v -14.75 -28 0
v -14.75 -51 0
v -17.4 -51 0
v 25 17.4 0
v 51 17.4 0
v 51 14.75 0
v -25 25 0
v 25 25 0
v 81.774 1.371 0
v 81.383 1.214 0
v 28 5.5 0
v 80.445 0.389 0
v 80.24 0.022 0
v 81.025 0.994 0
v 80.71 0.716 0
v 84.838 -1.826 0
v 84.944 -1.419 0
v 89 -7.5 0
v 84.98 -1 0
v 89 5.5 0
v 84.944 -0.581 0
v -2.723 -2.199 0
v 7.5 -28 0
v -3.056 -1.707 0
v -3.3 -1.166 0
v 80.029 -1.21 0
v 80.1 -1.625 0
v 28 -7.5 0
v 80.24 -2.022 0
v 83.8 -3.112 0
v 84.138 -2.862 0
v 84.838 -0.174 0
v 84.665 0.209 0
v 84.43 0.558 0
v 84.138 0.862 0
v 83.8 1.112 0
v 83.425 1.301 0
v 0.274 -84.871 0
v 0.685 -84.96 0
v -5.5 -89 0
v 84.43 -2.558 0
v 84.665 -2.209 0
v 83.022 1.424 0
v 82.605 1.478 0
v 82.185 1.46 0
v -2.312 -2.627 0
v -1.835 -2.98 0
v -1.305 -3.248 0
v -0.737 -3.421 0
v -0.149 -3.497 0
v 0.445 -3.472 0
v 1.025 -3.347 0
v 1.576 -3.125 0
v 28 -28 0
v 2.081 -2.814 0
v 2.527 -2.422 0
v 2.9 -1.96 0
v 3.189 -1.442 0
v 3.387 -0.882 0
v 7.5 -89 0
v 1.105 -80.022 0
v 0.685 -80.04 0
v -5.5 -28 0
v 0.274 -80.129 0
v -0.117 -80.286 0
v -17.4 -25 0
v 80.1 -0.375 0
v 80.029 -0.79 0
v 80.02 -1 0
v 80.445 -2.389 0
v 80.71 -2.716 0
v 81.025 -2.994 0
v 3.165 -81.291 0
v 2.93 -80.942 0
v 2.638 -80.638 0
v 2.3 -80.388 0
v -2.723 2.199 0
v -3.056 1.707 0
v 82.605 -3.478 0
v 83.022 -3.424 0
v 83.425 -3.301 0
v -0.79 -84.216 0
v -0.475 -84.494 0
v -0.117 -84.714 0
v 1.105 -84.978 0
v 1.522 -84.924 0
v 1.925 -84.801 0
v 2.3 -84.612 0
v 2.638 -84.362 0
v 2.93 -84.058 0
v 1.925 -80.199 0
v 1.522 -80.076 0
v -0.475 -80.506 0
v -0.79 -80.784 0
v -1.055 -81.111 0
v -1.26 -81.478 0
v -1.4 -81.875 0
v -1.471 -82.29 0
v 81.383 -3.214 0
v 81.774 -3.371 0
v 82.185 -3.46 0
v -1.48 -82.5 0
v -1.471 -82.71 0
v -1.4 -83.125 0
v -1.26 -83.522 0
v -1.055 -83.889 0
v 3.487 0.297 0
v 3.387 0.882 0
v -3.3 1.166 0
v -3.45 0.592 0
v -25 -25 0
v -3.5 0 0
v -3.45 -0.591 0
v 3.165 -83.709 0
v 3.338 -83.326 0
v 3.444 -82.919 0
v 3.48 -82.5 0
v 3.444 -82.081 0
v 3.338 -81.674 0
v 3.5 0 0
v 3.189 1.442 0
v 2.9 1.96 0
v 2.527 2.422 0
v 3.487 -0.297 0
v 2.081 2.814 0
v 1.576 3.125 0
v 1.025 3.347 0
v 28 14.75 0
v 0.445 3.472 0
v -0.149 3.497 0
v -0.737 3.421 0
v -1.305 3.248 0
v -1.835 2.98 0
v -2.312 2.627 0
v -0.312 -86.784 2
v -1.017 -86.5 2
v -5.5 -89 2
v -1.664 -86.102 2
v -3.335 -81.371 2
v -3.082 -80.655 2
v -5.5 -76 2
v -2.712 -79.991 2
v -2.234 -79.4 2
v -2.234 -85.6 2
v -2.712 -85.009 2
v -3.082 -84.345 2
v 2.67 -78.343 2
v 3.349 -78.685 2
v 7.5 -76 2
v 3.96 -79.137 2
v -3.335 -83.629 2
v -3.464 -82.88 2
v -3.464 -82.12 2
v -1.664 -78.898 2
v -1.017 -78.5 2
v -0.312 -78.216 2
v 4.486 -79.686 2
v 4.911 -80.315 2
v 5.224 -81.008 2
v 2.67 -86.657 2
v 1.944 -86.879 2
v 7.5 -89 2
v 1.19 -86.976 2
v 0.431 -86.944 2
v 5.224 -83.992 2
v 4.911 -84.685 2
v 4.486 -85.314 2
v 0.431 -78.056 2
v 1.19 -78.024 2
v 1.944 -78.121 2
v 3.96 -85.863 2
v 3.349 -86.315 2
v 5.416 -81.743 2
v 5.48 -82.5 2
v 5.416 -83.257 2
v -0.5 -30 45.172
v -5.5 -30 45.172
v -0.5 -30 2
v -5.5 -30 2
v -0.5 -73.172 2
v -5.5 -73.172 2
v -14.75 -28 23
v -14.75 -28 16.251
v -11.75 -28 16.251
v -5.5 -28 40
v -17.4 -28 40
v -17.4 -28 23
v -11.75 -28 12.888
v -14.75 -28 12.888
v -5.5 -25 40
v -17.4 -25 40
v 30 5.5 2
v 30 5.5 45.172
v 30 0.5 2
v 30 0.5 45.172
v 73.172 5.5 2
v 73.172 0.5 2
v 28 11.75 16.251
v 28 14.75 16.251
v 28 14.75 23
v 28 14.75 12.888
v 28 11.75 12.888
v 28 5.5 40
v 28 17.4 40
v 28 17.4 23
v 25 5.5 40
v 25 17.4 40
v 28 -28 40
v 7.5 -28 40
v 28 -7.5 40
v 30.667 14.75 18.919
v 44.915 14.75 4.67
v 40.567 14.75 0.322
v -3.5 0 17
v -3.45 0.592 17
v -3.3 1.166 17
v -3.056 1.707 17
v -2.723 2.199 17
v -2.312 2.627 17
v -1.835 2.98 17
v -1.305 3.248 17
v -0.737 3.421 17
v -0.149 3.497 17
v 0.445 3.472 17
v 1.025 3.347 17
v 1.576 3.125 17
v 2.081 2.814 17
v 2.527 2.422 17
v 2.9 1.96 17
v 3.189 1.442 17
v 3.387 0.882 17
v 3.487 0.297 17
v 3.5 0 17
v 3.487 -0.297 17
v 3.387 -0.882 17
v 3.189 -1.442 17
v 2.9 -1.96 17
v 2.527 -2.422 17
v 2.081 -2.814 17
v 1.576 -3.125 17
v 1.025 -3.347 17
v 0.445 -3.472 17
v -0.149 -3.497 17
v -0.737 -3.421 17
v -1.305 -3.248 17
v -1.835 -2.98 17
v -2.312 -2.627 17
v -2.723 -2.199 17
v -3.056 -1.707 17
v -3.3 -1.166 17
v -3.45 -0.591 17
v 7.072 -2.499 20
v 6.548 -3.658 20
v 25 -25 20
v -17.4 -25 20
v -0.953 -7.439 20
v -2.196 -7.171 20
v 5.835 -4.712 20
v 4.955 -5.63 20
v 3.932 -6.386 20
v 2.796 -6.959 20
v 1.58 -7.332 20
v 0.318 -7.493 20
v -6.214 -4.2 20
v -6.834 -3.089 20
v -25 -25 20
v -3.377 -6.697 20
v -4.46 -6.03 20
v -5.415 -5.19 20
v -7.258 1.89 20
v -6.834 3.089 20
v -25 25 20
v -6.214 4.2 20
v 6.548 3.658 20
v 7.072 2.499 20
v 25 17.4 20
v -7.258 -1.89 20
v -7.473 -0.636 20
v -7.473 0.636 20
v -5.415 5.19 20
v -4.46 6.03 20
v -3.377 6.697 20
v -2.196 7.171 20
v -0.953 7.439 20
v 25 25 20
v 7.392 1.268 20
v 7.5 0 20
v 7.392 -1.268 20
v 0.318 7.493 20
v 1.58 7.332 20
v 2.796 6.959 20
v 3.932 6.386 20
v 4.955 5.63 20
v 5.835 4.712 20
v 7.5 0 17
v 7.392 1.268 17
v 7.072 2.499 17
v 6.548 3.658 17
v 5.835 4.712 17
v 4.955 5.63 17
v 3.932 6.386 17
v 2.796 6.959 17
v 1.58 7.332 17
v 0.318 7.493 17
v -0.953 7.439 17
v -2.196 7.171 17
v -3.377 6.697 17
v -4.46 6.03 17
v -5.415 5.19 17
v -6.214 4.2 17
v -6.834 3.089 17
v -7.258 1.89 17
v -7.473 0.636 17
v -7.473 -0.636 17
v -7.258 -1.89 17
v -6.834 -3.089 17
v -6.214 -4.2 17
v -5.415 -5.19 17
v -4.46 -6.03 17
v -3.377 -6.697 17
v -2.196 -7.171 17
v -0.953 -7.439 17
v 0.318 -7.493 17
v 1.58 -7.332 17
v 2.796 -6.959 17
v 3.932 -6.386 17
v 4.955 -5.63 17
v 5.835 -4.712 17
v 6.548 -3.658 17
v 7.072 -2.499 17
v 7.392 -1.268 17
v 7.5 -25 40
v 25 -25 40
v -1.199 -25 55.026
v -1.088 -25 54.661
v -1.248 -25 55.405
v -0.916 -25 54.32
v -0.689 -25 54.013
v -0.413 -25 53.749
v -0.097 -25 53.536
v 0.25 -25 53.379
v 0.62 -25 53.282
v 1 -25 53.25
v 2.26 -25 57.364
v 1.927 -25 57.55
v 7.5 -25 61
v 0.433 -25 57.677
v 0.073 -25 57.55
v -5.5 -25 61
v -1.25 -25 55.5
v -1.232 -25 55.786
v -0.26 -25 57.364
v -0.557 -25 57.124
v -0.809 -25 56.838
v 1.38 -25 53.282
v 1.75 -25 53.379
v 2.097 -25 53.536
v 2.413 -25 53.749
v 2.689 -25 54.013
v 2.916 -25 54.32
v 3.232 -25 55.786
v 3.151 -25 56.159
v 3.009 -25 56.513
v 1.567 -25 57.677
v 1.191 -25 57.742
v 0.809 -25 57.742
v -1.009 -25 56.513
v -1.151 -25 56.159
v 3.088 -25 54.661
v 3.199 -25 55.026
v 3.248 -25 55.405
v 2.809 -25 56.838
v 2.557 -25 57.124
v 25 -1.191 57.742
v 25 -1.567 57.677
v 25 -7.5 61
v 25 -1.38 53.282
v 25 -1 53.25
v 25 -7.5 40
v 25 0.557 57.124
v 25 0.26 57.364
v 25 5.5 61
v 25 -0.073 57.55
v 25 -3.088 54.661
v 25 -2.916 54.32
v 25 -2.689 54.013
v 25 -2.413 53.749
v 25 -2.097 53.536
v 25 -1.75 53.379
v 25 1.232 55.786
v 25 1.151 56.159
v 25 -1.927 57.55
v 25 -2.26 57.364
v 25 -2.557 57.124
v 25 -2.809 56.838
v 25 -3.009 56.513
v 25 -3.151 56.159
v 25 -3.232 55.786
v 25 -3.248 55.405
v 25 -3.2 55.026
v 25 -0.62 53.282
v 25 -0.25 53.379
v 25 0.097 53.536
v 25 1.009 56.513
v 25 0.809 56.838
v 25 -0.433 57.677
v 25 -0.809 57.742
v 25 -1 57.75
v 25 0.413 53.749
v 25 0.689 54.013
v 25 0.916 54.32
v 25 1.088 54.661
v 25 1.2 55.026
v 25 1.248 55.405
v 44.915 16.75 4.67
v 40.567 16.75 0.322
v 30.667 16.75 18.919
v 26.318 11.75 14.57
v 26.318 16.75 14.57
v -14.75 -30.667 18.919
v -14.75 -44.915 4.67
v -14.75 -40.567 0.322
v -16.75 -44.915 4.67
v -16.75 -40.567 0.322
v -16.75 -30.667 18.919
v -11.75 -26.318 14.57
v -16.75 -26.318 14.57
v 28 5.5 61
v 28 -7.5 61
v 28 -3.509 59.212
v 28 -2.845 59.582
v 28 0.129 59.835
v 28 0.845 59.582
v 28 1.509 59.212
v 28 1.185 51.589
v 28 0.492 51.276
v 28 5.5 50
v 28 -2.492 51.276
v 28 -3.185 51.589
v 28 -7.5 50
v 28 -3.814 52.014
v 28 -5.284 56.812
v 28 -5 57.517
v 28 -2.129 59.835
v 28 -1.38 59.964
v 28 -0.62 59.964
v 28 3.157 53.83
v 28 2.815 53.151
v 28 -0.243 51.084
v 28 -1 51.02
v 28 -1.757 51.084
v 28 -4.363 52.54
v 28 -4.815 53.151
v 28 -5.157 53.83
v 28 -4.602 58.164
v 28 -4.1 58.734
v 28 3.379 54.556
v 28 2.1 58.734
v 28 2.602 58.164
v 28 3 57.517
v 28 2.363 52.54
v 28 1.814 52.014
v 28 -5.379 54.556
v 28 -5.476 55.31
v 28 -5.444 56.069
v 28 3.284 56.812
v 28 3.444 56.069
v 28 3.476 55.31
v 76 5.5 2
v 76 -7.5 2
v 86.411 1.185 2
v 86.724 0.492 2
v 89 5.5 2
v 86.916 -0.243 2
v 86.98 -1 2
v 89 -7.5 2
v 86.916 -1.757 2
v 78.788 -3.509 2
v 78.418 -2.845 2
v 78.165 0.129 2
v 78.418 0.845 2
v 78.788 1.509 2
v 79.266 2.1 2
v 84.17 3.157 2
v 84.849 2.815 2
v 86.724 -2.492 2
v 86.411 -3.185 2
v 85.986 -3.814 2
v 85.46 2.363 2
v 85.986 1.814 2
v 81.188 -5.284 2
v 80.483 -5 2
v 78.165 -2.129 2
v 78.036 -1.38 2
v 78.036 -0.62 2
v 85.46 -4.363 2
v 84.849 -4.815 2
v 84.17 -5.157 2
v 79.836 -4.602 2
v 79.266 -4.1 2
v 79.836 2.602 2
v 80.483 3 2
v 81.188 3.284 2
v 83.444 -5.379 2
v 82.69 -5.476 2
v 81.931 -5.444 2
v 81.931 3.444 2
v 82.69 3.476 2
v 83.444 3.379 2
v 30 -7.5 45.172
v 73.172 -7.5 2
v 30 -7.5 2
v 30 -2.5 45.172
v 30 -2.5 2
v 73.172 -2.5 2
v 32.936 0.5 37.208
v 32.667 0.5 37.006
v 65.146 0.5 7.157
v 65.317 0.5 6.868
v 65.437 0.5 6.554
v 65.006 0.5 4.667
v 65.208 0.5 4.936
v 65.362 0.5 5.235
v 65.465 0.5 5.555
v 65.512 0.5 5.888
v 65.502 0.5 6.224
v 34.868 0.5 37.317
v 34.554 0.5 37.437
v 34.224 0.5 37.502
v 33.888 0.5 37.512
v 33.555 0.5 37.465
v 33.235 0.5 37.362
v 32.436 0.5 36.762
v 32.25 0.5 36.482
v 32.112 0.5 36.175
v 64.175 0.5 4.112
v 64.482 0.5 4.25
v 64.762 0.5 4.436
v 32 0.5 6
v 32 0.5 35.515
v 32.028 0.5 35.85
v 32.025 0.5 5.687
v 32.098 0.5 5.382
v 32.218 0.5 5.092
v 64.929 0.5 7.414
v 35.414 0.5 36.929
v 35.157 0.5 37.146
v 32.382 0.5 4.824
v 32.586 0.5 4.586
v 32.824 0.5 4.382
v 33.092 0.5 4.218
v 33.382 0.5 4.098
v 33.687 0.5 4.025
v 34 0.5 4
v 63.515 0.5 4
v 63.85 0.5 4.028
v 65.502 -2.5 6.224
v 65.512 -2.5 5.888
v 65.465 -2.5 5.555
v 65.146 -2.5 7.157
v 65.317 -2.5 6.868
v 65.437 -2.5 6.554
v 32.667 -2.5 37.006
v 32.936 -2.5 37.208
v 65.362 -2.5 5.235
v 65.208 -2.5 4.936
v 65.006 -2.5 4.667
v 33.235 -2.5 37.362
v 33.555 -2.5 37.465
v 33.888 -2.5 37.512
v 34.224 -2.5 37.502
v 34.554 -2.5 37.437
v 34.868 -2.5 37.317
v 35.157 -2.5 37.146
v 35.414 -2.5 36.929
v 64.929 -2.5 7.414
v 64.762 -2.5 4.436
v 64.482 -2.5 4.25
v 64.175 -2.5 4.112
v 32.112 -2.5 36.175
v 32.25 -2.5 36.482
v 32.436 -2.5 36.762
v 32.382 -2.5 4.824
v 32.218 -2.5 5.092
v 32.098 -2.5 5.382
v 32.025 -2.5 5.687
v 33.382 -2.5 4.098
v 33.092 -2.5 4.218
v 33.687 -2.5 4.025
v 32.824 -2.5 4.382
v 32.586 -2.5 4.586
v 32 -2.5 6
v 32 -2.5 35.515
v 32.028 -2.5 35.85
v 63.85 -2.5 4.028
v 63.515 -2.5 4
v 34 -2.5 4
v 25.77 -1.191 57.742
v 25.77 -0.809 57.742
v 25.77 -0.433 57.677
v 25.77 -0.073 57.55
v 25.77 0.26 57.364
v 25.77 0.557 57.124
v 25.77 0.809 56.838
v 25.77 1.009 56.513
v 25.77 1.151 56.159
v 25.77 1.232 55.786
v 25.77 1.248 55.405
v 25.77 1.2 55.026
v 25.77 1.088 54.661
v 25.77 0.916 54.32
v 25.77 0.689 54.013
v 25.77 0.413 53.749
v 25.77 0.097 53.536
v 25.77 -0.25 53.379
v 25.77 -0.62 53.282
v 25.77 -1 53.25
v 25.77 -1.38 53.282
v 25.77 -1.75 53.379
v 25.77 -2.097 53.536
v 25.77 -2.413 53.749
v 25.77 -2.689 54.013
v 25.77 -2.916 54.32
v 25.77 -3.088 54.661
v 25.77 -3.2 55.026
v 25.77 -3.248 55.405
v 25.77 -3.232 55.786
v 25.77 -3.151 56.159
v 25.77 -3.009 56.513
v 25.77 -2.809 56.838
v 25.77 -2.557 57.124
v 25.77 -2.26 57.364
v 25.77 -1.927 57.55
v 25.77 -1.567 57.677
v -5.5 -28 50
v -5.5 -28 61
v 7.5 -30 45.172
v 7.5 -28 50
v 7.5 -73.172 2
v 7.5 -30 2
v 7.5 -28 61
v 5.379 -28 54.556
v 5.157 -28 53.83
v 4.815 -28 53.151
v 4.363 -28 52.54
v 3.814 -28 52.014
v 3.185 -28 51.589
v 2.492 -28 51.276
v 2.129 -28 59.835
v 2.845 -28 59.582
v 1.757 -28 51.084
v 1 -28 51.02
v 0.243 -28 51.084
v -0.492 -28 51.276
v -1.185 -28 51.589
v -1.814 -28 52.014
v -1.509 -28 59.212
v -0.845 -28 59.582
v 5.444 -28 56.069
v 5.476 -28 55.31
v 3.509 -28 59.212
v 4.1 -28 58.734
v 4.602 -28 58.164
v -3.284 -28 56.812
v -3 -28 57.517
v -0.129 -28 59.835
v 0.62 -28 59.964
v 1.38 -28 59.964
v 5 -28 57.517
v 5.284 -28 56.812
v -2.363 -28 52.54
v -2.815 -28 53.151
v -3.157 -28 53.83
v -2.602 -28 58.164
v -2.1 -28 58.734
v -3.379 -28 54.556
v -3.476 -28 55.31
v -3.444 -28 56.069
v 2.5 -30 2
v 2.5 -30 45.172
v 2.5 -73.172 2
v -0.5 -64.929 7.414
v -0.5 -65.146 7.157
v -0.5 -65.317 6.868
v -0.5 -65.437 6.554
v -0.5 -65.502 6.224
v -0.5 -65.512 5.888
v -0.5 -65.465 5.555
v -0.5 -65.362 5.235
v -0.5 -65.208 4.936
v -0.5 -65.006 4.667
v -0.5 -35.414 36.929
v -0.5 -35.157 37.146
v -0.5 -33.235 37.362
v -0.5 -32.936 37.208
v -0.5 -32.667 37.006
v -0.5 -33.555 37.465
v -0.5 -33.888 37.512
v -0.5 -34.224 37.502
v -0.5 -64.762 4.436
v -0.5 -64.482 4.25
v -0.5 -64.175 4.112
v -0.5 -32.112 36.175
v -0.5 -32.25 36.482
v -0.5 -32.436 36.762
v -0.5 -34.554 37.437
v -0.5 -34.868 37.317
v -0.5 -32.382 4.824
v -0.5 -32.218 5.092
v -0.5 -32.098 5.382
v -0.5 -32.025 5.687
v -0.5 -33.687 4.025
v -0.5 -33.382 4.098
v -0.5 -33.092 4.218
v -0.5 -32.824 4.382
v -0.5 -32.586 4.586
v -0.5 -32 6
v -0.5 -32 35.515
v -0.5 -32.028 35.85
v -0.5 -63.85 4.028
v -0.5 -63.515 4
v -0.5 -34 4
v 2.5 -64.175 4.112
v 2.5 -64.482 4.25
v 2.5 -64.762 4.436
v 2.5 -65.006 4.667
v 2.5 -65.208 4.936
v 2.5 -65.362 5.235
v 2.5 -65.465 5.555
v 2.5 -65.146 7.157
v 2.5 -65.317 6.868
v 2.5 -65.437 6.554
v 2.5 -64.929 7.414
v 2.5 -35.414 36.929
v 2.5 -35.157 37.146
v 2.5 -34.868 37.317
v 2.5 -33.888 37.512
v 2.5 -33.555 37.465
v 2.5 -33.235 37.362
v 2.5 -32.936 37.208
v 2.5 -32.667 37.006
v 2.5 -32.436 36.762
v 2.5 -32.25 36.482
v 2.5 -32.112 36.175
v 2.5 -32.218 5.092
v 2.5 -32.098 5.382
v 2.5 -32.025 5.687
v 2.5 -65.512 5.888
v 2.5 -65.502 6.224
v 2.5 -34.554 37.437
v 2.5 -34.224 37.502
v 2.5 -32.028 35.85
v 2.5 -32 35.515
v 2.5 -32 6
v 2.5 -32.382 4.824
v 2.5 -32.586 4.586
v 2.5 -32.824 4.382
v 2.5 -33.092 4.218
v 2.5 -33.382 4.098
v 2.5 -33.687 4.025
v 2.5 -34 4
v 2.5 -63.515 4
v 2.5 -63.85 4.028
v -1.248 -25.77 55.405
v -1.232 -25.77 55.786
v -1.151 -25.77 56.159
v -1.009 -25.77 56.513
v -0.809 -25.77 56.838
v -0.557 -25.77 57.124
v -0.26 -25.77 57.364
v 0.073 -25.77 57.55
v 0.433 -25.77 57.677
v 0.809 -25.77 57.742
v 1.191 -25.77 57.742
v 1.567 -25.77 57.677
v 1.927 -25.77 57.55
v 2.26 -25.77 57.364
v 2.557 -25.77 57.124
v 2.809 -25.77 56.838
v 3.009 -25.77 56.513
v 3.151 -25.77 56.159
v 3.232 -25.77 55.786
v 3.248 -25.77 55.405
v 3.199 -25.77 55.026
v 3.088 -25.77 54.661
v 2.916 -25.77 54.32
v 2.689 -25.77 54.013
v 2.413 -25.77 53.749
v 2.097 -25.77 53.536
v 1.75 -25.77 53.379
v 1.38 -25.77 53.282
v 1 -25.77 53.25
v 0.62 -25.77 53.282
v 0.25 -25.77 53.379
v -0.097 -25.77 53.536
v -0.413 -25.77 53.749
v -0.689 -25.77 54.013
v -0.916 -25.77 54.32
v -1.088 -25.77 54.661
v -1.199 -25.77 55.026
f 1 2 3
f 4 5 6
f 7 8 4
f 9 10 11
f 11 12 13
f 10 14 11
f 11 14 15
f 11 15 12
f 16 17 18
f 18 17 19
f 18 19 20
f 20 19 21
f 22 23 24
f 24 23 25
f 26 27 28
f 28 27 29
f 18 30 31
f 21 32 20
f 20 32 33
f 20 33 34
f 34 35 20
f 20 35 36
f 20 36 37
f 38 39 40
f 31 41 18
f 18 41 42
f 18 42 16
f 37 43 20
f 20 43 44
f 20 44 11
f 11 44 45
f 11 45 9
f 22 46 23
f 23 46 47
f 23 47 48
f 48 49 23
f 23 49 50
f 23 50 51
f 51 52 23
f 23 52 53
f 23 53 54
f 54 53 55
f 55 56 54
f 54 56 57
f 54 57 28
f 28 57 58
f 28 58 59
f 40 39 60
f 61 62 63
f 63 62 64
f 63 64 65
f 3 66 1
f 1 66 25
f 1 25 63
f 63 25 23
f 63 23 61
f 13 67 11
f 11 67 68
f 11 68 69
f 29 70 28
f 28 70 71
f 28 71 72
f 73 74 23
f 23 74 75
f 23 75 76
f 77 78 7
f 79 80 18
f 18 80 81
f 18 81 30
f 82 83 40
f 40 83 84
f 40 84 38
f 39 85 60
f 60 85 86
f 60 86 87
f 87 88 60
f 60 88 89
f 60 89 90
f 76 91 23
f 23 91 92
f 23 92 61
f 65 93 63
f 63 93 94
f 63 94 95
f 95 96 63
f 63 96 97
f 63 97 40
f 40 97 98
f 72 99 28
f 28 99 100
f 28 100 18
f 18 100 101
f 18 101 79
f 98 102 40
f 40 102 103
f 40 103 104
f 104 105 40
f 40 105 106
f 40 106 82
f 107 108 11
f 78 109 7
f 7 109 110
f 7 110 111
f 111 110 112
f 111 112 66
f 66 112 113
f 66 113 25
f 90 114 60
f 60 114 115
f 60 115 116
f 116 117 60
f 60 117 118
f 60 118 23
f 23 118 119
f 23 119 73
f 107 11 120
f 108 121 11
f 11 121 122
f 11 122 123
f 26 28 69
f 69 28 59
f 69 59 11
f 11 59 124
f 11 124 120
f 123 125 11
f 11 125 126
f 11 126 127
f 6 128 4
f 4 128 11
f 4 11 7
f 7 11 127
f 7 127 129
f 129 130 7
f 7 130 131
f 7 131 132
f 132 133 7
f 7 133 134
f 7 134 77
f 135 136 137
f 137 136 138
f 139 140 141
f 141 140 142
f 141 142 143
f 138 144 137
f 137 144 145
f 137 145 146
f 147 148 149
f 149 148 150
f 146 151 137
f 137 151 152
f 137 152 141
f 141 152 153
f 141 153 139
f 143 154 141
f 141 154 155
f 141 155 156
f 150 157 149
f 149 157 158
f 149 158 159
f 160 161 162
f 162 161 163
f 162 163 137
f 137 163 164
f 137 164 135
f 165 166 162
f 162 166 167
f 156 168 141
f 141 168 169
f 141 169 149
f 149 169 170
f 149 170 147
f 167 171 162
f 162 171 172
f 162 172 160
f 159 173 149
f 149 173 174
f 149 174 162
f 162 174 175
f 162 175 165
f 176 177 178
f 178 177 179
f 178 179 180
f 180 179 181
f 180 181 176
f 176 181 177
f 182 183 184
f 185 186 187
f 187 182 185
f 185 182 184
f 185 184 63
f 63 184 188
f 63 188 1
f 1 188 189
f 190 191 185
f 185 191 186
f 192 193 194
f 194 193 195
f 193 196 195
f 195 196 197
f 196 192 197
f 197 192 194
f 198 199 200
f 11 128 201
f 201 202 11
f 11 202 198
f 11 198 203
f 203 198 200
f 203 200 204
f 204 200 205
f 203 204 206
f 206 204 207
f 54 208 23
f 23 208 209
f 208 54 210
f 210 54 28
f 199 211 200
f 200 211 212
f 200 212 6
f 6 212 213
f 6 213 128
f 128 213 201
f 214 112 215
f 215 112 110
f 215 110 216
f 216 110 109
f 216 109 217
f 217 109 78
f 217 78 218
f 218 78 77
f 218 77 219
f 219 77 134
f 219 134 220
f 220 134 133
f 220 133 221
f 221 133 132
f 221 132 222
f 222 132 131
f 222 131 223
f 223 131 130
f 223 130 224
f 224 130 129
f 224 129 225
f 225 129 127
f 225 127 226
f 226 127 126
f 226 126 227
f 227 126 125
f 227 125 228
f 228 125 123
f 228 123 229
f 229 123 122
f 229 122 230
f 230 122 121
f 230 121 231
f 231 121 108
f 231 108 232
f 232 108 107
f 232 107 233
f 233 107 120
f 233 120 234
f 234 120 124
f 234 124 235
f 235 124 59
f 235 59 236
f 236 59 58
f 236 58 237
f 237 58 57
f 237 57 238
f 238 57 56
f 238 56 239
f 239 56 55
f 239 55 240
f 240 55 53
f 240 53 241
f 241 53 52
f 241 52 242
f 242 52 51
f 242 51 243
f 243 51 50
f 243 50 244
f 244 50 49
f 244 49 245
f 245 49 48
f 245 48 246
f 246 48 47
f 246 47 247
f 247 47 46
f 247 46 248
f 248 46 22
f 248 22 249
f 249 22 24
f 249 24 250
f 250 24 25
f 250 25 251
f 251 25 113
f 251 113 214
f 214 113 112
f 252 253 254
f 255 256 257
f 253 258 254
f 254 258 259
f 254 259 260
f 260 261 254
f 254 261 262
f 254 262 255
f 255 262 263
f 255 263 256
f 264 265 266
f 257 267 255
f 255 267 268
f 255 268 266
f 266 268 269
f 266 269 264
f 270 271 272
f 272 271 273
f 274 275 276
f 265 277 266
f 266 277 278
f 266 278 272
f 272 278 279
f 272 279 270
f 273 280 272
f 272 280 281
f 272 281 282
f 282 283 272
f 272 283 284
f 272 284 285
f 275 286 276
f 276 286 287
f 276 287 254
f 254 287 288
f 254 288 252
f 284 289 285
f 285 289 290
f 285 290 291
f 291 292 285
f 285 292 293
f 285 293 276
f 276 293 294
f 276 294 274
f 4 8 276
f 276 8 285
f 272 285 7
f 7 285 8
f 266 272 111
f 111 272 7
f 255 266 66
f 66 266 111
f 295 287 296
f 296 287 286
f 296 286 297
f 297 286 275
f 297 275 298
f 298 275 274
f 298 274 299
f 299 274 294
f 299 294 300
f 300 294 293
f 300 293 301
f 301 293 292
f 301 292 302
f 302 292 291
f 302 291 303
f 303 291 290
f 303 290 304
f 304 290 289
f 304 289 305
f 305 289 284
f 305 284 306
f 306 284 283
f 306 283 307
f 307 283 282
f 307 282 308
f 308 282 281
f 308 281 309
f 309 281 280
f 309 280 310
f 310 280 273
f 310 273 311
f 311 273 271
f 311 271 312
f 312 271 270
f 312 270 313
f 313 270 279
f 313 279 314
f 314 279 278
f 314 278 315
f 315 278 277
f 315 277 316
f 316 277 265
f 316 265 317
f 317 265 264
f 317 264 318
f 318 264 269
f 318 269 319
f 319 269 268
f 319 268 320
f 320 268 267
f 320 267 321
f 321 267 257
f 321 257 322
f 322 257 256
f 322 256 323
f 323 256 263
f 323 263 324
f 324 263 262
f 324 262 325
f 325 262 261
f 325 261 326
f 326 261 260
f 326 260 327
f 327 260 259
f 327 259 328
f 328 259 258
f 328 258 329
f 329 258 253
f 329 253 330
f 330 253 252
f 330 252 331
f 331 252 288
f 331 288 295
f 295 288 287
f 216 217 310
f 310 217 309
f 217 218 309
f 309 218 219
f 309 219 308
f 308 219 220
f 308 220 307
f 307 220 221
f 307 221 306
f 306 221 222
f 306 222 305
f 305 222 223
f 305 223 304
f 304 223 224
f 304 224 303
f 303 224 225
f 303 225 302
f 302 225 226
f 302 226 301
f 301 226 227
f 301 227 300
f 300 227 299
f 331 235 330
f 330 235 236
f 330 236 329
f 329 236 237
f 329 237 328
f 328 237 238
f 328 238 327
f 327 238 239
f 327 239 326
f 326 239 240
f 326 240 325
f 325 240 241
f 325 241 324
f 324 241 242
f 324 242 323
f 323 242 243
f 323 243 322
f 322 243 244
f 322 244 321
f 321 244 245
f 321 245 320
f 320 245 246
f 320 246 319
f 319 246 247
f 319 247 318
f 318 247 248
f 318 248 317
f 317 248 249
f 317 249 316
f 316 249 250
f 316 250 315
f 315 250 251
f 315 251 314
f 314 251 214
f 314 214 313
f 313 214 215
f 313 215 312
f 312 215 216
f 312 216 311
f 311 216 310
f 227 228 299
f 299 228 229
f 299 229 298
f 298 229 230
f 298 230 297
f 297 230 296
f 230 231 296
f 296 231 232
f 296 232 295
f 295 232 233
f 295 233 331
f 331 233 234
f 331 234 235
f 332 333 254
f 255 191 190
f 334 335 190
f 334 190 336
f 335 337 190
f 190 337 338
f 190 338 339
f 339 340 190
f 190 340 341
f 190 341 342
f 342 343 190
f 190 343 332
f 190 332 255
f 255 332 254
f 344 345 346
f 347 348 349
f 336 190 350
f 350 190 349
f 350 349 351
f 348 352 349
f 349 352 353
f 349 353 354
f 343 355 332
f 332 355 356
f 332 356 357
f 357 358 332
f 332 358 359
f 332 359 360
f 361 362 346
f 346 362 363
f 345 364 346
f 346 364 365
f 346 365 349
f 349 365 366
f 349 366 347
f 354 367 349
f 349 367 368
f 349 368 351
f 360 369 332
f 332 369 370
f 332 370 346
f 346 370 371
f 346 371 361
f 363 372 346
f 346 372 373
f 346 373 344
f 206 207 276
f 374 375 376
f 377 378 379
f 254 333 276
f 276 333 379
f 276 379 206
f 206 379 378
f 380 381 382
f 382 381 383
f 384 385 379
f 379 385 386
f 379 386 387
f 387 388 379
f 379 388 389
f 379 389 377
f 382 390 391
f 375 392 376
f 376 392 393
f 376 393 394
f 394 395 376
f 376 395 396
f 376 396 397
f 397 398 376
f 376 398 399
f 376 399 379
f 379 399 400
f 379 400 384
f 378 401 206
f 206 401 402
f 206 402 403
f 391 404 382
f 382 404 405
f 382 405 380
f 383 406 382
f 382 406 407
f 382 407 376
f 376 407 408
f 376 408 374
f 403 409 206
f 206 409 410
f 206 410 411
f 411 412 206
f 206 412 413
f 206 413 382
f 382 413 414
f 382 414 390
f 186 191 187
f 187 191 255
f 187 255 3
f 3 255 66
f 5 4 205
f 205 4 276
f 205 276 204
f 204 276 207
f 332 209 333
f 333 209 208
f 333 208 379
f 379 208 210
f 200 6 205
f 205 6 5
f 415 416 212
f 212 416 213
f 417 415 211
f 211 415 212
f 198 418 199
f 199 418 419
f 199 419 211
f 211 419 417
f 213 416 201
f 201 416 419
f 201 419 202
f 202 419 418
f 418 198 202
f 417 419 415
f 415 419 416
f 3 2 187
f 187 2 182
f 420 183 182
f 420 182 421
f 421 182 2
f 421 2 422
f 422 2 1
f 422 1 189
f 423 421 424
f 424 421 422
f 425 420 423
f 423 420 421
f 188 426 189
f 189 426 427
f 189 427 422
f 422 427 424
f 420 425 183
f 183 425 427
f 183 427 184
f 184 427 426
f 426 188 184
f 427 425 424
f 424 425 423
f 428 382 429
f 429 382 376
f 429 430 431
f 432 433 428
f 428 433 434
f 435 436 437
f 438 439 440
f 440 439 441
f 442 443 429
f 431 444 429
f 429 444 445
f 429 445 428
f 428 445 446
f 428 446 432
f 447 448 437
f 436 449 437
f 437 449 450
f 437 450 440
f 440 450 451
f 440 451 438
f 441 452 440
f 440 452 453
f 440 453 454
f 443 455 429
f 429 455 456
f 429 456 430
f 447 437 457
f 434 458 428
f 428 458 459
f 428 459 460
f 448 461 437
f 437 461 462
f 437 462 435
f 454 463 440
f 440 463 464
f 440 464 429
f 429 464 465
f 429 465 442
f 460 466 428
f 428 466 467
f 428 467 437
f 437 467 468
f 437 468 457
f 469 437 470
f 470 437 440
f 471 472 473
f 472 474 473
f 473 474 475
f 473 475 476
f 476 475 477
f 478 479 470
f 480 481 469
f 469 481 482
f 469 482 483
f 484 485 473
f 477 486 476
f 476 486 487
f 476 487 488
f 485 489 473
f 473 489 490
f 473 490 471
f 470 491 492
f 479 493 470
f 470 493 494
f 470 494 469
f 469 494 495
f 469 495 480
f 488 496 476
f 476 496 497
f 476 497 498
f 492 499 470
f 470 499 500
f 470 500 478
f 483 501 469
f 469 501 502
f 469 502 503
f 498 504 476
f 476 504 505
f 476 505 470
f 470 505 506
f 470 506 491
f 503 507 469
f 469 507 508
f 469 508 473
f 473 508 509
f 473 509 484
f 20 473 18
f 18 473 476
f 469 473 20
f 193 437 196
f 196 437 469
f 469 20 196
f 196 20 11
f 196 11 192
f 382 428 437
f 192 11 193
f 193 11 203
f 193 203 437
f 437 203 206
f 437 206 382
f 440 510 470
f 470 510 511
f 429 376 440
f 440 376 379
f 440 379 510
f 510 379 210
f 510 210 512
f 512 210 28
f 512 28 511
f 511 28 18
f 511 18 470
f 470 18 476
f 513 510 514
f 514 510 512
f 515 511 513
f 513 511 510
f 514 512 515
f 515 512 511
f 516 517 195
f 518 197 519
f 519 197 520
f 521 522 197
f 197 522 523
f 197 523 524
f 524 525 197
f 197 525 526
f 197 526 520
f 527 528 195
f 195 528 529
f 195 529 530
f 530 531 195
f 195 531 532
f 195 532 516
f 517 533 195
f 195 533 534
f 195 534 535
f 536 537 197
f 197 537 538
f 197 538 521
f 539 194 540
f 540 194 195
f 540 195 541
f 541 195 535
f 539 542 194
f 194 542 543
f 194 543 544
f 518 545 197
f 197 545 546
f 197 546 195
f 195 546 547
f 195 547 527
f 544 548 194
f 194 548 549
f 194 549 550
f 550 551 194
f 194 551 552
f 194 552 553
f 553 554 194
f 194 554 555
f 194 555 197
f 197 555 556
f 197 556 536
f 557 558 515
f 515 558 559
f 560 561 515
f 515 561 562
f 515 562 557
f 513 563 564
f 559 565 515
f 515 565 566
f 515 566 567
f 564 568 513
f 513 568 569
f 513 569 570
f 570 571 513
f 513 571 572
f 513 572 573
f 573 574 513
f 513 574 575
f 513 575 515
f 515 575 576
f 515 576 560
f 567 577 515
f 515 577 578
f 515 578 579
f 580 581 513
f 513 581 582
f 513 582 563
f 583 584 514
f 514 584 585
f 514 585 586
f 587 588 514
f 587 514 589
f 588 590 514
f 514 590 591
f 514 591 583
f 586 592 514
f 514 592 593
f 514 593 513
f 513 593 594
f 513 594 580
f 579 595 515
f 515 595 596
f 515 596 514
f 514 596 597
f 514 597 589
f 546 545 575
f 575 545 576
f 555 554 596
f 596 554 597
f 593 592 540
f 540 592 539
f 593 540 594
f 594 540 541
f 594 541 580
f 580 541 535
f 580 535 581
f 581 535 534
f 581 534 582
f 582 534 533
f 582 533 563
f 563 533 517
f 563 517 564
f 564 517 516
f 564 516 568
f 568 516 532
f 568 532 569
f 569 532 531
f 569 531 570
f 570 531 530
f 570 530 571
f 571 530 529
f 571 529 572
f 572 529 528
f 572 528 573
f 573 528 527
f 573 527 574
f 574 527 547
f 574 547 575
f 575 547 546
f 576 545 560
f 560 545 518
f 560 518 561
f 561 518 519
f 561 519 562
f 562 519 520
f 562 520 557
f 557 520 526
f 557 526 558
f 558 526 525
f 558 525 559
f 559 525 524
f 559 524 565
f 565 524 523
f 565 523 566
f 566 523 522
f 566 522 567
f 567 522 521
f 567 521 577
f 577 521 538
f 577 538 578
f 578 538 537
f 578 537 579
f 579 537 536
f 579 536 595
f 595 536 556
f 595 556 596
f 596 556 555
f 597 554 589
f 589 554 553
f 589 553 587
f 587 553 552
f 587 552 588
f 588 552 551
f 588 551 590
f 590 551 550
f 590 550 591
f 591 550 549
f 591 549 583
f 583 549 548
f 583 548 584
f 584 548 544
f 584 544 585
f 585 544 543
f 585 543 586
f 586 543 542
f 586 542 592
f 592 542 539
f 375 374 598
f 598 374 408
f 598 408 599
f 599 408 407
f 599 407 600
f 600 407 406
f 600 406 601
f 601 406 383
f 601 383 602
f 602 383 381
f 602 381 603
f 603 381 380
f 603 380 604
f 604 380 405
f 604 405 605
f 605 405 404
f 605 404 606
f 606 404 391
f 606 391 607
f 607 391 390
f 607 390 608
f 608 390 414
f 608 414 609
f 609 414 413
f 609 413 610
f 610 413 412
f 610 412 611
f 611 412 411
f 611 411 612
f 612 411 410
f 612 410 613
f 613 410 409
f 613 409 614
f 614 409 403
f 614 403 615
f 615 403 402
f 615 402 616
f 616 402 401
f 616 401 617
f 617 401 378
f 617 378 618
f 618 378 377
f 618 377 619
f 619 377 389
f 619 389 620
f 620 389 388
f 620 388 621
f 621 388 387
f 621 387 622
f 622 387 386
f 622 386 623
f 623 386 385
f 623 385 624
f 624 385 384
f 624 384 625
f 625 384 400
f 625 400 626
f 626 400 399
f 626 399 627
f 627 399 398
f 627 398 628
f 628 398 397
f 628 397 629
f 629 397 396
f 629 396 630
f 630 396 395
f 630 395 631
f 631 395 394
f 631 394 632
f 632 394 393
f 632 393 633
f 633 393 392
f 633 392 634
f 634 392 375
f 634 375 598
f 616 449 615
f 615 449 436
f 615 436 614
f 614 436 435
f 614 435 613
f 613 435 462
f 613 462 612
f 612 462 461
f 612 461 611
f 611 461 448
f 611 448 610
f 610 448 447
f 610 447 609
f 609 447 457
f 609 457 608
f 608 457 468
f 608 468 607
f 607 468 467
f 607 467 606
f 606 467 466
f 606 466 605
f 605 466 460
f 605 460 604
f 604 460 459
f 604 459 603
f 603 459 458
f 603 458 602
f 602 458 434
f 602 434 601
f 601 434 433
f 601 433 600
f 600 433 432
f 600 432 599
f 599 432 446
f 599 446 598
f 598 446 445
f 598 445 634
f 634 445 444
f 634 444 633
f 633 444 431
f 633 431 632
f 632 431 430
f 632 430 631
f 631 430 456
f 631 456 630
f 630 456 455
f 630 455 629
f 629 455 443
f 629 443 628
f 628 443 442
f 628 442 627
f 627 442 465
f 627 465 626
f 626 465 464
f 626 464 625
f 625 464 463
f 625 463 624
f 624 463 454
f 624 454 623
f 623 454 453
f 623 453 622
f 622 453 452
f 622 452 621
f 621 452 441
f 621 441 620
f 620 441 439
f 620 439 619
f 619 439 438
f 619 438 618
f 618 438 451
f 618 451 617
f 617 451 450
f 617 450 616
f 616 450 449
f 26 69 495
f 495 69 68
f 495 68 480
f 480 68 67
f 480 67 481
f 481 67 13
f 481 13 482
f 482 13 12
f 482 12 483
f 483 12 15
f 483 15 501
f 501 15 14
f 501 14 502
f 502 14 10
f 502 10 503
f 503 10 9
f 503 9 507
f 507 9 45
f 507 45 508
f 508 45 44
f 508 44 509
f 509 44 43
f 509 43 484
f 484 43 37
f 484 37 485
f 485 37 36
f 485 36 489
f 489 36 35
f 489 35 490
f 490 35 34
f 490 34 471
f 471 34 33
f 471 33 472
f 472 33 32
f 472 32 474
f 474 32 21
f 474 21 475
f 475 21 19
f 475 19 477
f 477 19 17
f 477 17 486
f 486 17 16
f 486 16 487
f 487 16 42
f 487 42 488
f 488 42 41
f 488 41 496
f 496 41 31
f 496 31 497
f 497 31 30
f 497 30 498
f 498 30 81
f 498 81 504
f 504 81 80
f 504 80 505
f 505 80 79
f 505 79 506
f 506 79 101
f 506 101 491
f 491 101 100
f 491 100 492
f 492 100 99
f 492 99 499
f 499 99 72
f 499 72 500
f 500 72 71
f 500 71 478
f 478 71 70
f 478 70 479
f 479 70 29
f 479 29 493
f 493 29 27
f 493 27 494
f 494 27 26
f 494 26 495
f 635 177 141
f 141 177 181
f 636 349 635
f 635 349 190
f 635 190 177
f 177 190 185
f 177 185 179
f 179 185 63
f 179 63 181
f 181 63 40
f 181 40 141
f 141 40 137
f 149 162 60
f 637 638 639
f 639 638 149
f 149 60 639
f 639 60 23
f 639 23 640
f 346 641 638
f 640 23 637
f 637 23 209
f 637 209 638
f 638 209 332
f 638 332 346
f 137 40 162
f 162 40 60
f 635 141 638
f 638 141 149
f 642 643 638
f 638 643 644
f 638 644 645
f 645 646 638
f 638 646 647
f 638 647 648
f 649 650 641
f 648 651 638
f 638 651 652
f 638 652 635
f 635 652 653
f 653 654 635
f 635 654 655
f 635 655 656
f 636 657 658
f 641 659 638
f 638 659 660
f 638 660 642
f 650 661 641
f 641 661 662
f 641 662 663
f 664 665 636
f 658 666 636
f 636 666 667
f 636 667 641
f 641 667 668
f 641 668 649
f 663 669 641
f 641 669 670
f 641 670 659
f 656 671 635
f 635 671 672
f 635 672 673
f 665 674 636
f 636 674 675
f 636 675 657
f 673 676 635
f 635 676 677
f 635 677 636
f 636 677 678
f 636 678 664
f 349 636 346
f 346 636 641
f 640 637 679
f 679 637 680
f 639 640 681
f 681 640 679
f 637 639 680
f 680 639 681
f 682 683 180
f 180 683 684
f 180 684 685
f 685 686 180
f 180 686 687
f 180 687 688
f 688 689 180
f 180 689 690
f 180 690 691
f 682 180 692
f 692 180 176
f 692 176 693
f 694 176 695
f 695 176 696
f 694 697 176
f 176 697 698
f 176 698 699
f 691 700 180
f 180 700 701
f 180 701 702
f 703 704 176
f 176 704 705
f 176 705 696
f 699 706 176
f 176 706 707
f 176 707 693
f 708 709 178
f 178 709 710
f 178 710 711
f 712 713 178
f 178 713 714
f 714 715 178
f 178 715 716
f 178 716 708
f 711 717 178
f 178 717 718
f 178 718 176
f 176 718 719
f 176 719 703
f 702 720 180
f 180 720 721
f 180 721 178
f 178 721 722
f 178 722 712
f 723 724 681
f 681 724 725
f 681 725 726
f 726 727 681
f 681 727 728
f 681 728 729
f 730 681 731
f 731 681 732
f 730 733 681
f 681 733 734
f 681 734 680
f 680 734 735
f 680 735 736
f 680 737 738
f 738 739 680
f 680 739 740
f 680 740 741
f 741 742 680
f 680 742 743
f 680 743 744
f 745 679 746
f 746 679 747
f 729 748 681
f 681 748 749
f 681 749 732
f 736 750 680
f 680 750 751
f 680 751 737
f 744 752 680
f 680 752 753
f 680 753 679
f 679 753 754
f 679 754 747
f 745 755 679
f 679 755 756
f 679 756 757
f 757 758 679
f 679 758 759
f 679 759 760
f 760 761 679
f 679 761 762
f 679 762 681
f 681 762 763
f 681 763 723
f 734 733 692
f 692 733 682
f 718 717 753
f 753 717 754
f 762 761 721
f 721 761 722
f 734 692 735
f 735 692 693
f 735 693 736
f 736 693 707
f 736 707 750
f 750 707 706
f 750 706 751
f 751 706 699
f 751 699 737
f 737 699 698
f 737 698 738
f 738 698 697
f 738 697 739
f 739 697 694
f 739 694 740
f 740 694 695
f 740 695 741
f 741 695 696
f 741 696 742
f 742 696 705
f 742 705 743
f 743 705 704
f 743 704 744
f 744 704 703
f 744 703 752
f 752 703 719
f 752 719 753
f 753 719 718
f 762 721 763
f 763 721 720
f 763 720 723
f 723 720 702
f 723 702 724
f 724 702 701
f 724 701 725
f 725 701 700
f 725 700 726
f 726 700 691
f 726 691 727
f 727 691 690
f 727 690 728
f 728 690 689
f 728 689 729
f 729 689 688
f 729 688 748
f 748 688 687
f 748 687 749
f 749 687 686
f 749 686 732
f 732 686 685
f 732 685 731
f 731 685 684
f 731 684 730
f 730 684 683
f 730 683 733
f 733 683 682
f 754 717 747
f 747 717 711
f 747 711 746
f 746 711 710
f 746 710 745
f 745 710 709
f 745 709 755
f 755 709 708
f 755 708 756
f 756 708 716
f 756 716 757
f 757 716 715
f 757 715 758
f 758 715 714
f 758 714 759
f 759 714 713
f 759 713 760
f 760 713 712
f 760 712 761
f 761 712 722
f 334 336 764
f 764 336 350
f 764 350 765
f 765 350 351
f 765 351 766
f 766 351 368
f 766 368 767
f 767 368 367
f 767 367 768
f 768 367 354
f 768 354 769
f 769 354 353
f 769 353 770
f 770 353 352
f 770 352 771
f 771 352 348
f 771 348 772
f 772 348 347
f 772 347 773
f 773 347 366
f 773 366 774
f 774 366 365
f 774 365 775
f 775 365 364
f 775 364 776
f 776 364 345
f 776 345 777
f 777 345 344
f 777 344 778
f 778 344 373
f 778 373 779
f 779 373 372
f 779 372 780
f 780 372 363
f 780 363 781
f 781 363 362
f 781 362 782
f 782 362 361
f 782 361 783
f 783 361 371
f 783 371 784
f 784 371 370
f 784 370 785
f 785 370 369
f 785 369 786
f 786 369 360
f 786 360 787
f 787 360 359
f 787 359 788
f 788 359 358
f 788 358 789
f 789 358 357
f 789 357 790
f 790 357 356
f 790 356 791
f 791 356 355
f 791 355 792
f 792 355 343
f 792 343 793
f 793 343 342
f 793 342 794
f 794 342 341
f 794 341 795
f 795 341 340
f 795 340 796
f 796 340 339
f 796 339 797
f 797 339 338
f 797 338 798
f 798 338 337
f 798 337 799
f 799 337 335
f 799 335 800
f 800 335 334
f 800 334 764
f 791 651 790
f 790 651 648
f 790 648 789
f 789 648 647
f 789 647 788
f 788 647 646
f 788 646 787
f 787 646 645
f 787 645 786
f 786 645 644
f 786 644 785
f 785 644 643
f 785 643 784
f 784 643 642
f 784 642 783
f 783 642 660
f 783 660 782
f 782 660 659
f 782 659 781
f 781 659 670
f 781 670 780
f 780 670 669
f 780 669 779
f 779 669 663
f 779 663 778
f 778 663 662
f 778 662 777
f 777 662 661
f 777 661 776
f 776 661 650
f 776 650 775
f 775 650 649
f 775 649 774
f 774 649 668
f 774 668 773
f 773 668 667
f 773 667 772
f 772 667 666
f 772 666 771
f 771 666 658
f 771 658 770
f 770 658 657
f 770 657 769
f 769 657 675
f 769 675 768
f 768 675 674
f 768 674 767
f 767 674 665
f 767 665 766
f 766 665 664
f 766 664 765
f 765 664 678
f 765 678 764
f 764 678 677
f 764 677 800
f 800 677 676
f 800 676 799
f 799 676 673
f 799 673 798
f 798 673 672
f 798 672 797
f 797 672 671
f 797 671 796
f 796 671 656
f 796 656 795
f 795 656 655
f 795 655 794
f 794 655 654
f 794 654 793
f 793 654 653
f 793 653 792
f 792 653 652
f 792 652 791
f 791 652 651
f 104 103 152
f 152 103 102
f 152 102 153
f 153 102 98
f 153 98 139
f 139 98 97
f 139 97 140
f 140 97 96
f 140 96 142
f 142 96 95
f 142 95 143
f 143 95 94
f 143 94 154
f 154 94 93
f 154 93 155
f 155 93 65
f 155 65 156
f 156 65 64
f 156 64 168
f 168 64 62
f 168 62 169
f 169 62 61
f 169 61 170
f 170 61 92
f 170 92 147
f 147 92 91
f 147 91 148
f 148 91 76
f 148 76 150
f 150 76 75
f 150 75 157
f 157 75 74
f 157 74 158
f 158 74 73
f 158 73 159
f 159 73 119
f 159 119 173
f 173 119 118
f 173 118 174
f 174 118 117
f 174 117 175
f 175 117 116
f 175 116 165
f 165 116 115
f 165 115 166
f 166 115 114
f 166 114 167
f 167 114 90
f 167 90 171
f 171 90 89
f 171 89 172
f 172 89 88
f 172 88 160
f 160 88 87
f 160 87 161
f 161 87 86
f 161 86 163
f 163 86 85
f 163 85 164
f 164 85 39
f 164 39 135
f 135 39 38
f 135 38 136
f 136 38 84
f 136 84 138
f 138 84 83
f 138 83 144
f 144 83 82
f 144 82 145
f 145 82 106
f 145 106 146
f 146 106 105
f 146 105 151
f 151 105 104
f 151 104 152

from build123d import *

# Parameters (mm, degrees)
CROQUIS2_W                                           = 50
CROQUIS2_H                                           = 50
CROQUIS2_R                                           = 3.5
SALIENTE_EXTRUIR2_DEPTH                              = 20
CROQUIS3_R                                           = 7.5
CORTAR_EXTRUIR1_DEPTH                                = 3
SALIENTE_EXTRUIR3_DEPTH                              = 40
SALIENTE_EXTRUIR4_DEPTH                              = 2.65
CORTAR_EXTRUIR2_START                                = -2
CORTAR_EXTRUIR2_DEPTH                                = 5
SALIENTE_EXTRUIR5_START                              = -20.5
SALIENTE_EXTRUIR5_DEPTH                              = 13
SALIENTE_EXTRUIR6_START                              = -5
SALIENTE_EXTRUIR6_DEPTH                              = 3
REDONDEO1_R                                          = 2
CROQUIS12_R                                          = 2
CORTAR_EXTRUIR4_DEPTH                                = 2
CROQUIS13_R                                          = 2
CORTAR_EXTRUIR5_DEPTH                                = 3
REFRENTADO_PARA_TORNILLO_TAP_N_CON_CABEZ_D           = 4.5
REFRENTADO_PARA_TORNILLO_TAP_N_CON_CABEZ_CSINK_D     = 8.96
REFRENTADO_PARA_TORNILLO_TAP_N_CON_CABEZ_CSINK_ANGLE = 90
REDONDEO1_OF_SIMETR_A4_R                             = 2


with BuildPart() as part:
    # Croquis2 → Saliente-Extruir2 (new body)
    with BuildSketch(Plane.XY):
        Rectangle(CROQUIS2_W, CROQUIS2_H)
        Circle(CROQUIS2_R, mode=Mode.SUBTRACT)
    extrude(amount=SALIENTE_EXTRUIR2_DEPTH)

    # Croquis3 → Cortar-Extruir1 (cut)
    with BuildSketch(Plane.XY.offset(20)):
        Circle(CROQUIS3_R)
    extrude(amount=-CORTAR_EXTRUIR1_DEPTH, mode=Mode.SUBTRACT)

    # Croquis4 → Saliente-Extruir3 (add)
    with BuildSketch(Plane(origin=(0, 0, 0), x_dir=(-1, 0, 0), z_dir=(0, 0, -1))):
        Polygon((-25, -25), (-25, 17.4), (-28, 17.4), (-28, -28), (17.4, -28), (17.4, -25), align=None)
    extrude(amount=-SALIENTE_EXTRUIR3_DEPTH)

    # Croquis5 → Saliente-Extruir4 (add)
    with BuildSketch(Plane(origin=(0, 17.4, 0), x_dir=(1, 0, 0), z_dir=(0, 1, 0))):
        Polygon((25, 0), (51, 0), (26, -25), (25, -25), align=None)
    saliente_extruir4 = extrude(amount=-SALIENTE_EXTRUIR4_DEPTH)

    # Croquis6 → Cortar-Extruir2 (cut)
    with BuildSketch(Plane.XZ.offset(-14.75).offset(CORTAR_EXTRUIR2_START)):
        Polygon((44.915346148, 4.67044029), (30.667144507, 18.918641931), (26.318437803, 14.569935226), (40.566639444, 0.321733585), align=None)
    cortar_extruir2 = extrude(amount=CORTAR_EXTRUIR2_DEPTH, mode=Mode.SUBTRACT)

    # Simetría2: Saliente-Extruir4, Cortar-Extruir2 across plane
    add(saliente_extruir4.mirror(Plane(origin=(0, 0, 0), x_dir=(0, 0, 1), z_dir=(0.707106781, 0.707106781, 0))))
    add(cortar_extruir2.mirror(Plane(origin=(0, 0, 0), x_dir=(0, 0, 1), z_dir=(0.707106781, 0.707106781, 0))), mode=Mode.SUBTRACT)

    # Croquis10 → Saliente-Extruir5 (add)
    with BuildSketch(Plane.XZ.offset(28).offset(SALIENTE_EXTRUIR5_START)):
        Polygon((28, 0), (78, 0), (89, 0), (89, 2), (76, 2), (28, 50), (28, 61), (25, 61), (25, 40), (28, 40), align=None)
        Polygon((30, 45.171572875), (73.171572875, 2), (30, 2), align=None, mode=Mode.SUBTRACT)
    saliente_extruir5 = extrude(amount=-SALIENTE_EXTRUIR5_DEPTH)

    # Croquis11 → Saliente-Extruir6 (add)
    with BuildSketch(Plane.XZ.offset(7.5).offset(SALIENTE_EXTRUIR6_START)):
        Polygon((30, 45.171572875), (30, 2), (73.171572875, 2), align=None)
        Polygon((32, 40.343145751), (32, 4), (68.343145751, 4), align=None, mode=Mode.SUBTRACT)
    saliente_extruir6 = extrude(amount=-SALIENTE_EXTRUIR6_DEPTH)

    # Redondeo1
    redondeo1_edges = [part.edges().sort_by_distance(p)[0] for p in [
        (68.343145751, -1, 4),
        (32, -1, 4),
        (32, -1, 40.343145751),
    ]]
    fillet(redondeo1_edges, radius=REDONDEO1_R)

    # Croquis12 → Cortar-Extruir4 (cut)
    with BuildSketch(Plane.XY.offset(2)):
        with Locations((82.5, -1)):
            Circle(CROQUIS12_R)
    cortar_extruir4 = extrude(amount=-CORTAR_EXTRUIR4_DEPTH, mode=Mode.SUBTRACT)

    # Croquis13 → Cortar-Extruir5 (cut)
    with BuildSketch(Plane(origin=(28, 0, 0), x_dir=(0, 0, -1), z_dir=(1, 0, 0))):
        with Locations((-55.5, -1)):
            Circle(CROQUIS13_R)
    cortar_extruir5 = extrude(amount=-CORTAR_EXTRUIR5_DEPTH, mode=Mode.SUBTRACT)

    # Refrentado para tornillo tap_n con cabez (through all)
    with Locations(Plane(origin=(28, 0, 0), x_dir=(0, 0, -1), z_dir=(1, 0, 0))):
        with Locations((-55.5, -1)):
            refrentado_para_tornillo_tap_n_con_cabez = CounterSinkHole(REFRENTADO_PARA_TORNILLO_TAP_N_CON_CABEZ_D / 2, REFRENTADO_PARA_TORNILLO_TAP_N_CON_CABEZ_CSINK_D / 2, counter_sink_angle=REFRENTADO_PARA_TORNILLO_TAP_N_CON_CABEZ_CSINK_ANGLE)

    # Croquis17 → Refrentado para tornillo tap_n con c 2 (revolve, cut)
    with BuildSketch(Plane(origin=(82.5, -1, 2), x_dir=(0, -1, 0), z_dir=(1, 0, 0))):
        Polygon((0, 0), (0, 2), (2.25, 2), (2.25, 2.23), (4.48, 0), align=None)
    refrentado_para_tornillo_tap_n_con_c_2 = revolve(axis=Axis((82.5, -1, 8.35), (0, 0, -1)), mode=Mode.SUBTRACT)

    # Simetría4: Saliente-Extruir5, Saliente-Extruir6, Cortar-Extruir4, Cortar-Extruir5, Refrentado para tornillo tap_n con cabez, Refrentado para tornillo tap_n con c 2 across plane
    add(saliente_extruir5.mirror(Plane(origin=(0, 0, 0), x_dir=(0, 0, 1), z_dir=(0.707106781, 0.707106781, 0))))
    add(saliente_extruir6.mirror(Plane(origin=(0, 0, 0), x_dir=(0, 0, 1), z_dir=(0.707106781, 0.707106781, 0))))
    add(cortar_extruir4.mirror(Plane(origin=(0, 0, 0), x_dir=(0, 0, 1), z_dir=(0.707106781, 0.707106781, 0))), mode=Mode.SUBTRACT)
    add(cortar_extruir5.mirror(Plane(origin=(0, 0, 0), x_dir=(0, 0, 1), z_dir=(0.707106781, 0.707106781, 0))), mode=Mode.SUBTRACT)
    add(refrentado_para_tornillo_tap_n_con_cabez.mirror(Plane(origin=(0, 0, 0), x_dir=(0, 0, 1), z_dir=(0.707106781, 0.707106781, 0))), mode=Mode.SUBTRACT)
    add(refrentado_para_tornillo_tap_n_con_c_2.mirror(Plane(origin=(0, 0, 0), x_dir=(0, 0, 1), z_dir=(0.707106781, 0.707106781, 0))), mode=Mode.SUBTRACT)

    # Redondeo1 of Simetría4
    redondeo1_of_simetr_a4_edges = [part.edges().sort_by_distance(p)[0] for p in [
        (1, -68.343145751, 4),
        (1, -32, 4),
        (1, -32, 40.343145751),
    ]]
    fillet(redondeo1_of_simetr_a4_edges, radius=REDONDEO1_OF_SIMETR_A4_R)


solid = part.part
